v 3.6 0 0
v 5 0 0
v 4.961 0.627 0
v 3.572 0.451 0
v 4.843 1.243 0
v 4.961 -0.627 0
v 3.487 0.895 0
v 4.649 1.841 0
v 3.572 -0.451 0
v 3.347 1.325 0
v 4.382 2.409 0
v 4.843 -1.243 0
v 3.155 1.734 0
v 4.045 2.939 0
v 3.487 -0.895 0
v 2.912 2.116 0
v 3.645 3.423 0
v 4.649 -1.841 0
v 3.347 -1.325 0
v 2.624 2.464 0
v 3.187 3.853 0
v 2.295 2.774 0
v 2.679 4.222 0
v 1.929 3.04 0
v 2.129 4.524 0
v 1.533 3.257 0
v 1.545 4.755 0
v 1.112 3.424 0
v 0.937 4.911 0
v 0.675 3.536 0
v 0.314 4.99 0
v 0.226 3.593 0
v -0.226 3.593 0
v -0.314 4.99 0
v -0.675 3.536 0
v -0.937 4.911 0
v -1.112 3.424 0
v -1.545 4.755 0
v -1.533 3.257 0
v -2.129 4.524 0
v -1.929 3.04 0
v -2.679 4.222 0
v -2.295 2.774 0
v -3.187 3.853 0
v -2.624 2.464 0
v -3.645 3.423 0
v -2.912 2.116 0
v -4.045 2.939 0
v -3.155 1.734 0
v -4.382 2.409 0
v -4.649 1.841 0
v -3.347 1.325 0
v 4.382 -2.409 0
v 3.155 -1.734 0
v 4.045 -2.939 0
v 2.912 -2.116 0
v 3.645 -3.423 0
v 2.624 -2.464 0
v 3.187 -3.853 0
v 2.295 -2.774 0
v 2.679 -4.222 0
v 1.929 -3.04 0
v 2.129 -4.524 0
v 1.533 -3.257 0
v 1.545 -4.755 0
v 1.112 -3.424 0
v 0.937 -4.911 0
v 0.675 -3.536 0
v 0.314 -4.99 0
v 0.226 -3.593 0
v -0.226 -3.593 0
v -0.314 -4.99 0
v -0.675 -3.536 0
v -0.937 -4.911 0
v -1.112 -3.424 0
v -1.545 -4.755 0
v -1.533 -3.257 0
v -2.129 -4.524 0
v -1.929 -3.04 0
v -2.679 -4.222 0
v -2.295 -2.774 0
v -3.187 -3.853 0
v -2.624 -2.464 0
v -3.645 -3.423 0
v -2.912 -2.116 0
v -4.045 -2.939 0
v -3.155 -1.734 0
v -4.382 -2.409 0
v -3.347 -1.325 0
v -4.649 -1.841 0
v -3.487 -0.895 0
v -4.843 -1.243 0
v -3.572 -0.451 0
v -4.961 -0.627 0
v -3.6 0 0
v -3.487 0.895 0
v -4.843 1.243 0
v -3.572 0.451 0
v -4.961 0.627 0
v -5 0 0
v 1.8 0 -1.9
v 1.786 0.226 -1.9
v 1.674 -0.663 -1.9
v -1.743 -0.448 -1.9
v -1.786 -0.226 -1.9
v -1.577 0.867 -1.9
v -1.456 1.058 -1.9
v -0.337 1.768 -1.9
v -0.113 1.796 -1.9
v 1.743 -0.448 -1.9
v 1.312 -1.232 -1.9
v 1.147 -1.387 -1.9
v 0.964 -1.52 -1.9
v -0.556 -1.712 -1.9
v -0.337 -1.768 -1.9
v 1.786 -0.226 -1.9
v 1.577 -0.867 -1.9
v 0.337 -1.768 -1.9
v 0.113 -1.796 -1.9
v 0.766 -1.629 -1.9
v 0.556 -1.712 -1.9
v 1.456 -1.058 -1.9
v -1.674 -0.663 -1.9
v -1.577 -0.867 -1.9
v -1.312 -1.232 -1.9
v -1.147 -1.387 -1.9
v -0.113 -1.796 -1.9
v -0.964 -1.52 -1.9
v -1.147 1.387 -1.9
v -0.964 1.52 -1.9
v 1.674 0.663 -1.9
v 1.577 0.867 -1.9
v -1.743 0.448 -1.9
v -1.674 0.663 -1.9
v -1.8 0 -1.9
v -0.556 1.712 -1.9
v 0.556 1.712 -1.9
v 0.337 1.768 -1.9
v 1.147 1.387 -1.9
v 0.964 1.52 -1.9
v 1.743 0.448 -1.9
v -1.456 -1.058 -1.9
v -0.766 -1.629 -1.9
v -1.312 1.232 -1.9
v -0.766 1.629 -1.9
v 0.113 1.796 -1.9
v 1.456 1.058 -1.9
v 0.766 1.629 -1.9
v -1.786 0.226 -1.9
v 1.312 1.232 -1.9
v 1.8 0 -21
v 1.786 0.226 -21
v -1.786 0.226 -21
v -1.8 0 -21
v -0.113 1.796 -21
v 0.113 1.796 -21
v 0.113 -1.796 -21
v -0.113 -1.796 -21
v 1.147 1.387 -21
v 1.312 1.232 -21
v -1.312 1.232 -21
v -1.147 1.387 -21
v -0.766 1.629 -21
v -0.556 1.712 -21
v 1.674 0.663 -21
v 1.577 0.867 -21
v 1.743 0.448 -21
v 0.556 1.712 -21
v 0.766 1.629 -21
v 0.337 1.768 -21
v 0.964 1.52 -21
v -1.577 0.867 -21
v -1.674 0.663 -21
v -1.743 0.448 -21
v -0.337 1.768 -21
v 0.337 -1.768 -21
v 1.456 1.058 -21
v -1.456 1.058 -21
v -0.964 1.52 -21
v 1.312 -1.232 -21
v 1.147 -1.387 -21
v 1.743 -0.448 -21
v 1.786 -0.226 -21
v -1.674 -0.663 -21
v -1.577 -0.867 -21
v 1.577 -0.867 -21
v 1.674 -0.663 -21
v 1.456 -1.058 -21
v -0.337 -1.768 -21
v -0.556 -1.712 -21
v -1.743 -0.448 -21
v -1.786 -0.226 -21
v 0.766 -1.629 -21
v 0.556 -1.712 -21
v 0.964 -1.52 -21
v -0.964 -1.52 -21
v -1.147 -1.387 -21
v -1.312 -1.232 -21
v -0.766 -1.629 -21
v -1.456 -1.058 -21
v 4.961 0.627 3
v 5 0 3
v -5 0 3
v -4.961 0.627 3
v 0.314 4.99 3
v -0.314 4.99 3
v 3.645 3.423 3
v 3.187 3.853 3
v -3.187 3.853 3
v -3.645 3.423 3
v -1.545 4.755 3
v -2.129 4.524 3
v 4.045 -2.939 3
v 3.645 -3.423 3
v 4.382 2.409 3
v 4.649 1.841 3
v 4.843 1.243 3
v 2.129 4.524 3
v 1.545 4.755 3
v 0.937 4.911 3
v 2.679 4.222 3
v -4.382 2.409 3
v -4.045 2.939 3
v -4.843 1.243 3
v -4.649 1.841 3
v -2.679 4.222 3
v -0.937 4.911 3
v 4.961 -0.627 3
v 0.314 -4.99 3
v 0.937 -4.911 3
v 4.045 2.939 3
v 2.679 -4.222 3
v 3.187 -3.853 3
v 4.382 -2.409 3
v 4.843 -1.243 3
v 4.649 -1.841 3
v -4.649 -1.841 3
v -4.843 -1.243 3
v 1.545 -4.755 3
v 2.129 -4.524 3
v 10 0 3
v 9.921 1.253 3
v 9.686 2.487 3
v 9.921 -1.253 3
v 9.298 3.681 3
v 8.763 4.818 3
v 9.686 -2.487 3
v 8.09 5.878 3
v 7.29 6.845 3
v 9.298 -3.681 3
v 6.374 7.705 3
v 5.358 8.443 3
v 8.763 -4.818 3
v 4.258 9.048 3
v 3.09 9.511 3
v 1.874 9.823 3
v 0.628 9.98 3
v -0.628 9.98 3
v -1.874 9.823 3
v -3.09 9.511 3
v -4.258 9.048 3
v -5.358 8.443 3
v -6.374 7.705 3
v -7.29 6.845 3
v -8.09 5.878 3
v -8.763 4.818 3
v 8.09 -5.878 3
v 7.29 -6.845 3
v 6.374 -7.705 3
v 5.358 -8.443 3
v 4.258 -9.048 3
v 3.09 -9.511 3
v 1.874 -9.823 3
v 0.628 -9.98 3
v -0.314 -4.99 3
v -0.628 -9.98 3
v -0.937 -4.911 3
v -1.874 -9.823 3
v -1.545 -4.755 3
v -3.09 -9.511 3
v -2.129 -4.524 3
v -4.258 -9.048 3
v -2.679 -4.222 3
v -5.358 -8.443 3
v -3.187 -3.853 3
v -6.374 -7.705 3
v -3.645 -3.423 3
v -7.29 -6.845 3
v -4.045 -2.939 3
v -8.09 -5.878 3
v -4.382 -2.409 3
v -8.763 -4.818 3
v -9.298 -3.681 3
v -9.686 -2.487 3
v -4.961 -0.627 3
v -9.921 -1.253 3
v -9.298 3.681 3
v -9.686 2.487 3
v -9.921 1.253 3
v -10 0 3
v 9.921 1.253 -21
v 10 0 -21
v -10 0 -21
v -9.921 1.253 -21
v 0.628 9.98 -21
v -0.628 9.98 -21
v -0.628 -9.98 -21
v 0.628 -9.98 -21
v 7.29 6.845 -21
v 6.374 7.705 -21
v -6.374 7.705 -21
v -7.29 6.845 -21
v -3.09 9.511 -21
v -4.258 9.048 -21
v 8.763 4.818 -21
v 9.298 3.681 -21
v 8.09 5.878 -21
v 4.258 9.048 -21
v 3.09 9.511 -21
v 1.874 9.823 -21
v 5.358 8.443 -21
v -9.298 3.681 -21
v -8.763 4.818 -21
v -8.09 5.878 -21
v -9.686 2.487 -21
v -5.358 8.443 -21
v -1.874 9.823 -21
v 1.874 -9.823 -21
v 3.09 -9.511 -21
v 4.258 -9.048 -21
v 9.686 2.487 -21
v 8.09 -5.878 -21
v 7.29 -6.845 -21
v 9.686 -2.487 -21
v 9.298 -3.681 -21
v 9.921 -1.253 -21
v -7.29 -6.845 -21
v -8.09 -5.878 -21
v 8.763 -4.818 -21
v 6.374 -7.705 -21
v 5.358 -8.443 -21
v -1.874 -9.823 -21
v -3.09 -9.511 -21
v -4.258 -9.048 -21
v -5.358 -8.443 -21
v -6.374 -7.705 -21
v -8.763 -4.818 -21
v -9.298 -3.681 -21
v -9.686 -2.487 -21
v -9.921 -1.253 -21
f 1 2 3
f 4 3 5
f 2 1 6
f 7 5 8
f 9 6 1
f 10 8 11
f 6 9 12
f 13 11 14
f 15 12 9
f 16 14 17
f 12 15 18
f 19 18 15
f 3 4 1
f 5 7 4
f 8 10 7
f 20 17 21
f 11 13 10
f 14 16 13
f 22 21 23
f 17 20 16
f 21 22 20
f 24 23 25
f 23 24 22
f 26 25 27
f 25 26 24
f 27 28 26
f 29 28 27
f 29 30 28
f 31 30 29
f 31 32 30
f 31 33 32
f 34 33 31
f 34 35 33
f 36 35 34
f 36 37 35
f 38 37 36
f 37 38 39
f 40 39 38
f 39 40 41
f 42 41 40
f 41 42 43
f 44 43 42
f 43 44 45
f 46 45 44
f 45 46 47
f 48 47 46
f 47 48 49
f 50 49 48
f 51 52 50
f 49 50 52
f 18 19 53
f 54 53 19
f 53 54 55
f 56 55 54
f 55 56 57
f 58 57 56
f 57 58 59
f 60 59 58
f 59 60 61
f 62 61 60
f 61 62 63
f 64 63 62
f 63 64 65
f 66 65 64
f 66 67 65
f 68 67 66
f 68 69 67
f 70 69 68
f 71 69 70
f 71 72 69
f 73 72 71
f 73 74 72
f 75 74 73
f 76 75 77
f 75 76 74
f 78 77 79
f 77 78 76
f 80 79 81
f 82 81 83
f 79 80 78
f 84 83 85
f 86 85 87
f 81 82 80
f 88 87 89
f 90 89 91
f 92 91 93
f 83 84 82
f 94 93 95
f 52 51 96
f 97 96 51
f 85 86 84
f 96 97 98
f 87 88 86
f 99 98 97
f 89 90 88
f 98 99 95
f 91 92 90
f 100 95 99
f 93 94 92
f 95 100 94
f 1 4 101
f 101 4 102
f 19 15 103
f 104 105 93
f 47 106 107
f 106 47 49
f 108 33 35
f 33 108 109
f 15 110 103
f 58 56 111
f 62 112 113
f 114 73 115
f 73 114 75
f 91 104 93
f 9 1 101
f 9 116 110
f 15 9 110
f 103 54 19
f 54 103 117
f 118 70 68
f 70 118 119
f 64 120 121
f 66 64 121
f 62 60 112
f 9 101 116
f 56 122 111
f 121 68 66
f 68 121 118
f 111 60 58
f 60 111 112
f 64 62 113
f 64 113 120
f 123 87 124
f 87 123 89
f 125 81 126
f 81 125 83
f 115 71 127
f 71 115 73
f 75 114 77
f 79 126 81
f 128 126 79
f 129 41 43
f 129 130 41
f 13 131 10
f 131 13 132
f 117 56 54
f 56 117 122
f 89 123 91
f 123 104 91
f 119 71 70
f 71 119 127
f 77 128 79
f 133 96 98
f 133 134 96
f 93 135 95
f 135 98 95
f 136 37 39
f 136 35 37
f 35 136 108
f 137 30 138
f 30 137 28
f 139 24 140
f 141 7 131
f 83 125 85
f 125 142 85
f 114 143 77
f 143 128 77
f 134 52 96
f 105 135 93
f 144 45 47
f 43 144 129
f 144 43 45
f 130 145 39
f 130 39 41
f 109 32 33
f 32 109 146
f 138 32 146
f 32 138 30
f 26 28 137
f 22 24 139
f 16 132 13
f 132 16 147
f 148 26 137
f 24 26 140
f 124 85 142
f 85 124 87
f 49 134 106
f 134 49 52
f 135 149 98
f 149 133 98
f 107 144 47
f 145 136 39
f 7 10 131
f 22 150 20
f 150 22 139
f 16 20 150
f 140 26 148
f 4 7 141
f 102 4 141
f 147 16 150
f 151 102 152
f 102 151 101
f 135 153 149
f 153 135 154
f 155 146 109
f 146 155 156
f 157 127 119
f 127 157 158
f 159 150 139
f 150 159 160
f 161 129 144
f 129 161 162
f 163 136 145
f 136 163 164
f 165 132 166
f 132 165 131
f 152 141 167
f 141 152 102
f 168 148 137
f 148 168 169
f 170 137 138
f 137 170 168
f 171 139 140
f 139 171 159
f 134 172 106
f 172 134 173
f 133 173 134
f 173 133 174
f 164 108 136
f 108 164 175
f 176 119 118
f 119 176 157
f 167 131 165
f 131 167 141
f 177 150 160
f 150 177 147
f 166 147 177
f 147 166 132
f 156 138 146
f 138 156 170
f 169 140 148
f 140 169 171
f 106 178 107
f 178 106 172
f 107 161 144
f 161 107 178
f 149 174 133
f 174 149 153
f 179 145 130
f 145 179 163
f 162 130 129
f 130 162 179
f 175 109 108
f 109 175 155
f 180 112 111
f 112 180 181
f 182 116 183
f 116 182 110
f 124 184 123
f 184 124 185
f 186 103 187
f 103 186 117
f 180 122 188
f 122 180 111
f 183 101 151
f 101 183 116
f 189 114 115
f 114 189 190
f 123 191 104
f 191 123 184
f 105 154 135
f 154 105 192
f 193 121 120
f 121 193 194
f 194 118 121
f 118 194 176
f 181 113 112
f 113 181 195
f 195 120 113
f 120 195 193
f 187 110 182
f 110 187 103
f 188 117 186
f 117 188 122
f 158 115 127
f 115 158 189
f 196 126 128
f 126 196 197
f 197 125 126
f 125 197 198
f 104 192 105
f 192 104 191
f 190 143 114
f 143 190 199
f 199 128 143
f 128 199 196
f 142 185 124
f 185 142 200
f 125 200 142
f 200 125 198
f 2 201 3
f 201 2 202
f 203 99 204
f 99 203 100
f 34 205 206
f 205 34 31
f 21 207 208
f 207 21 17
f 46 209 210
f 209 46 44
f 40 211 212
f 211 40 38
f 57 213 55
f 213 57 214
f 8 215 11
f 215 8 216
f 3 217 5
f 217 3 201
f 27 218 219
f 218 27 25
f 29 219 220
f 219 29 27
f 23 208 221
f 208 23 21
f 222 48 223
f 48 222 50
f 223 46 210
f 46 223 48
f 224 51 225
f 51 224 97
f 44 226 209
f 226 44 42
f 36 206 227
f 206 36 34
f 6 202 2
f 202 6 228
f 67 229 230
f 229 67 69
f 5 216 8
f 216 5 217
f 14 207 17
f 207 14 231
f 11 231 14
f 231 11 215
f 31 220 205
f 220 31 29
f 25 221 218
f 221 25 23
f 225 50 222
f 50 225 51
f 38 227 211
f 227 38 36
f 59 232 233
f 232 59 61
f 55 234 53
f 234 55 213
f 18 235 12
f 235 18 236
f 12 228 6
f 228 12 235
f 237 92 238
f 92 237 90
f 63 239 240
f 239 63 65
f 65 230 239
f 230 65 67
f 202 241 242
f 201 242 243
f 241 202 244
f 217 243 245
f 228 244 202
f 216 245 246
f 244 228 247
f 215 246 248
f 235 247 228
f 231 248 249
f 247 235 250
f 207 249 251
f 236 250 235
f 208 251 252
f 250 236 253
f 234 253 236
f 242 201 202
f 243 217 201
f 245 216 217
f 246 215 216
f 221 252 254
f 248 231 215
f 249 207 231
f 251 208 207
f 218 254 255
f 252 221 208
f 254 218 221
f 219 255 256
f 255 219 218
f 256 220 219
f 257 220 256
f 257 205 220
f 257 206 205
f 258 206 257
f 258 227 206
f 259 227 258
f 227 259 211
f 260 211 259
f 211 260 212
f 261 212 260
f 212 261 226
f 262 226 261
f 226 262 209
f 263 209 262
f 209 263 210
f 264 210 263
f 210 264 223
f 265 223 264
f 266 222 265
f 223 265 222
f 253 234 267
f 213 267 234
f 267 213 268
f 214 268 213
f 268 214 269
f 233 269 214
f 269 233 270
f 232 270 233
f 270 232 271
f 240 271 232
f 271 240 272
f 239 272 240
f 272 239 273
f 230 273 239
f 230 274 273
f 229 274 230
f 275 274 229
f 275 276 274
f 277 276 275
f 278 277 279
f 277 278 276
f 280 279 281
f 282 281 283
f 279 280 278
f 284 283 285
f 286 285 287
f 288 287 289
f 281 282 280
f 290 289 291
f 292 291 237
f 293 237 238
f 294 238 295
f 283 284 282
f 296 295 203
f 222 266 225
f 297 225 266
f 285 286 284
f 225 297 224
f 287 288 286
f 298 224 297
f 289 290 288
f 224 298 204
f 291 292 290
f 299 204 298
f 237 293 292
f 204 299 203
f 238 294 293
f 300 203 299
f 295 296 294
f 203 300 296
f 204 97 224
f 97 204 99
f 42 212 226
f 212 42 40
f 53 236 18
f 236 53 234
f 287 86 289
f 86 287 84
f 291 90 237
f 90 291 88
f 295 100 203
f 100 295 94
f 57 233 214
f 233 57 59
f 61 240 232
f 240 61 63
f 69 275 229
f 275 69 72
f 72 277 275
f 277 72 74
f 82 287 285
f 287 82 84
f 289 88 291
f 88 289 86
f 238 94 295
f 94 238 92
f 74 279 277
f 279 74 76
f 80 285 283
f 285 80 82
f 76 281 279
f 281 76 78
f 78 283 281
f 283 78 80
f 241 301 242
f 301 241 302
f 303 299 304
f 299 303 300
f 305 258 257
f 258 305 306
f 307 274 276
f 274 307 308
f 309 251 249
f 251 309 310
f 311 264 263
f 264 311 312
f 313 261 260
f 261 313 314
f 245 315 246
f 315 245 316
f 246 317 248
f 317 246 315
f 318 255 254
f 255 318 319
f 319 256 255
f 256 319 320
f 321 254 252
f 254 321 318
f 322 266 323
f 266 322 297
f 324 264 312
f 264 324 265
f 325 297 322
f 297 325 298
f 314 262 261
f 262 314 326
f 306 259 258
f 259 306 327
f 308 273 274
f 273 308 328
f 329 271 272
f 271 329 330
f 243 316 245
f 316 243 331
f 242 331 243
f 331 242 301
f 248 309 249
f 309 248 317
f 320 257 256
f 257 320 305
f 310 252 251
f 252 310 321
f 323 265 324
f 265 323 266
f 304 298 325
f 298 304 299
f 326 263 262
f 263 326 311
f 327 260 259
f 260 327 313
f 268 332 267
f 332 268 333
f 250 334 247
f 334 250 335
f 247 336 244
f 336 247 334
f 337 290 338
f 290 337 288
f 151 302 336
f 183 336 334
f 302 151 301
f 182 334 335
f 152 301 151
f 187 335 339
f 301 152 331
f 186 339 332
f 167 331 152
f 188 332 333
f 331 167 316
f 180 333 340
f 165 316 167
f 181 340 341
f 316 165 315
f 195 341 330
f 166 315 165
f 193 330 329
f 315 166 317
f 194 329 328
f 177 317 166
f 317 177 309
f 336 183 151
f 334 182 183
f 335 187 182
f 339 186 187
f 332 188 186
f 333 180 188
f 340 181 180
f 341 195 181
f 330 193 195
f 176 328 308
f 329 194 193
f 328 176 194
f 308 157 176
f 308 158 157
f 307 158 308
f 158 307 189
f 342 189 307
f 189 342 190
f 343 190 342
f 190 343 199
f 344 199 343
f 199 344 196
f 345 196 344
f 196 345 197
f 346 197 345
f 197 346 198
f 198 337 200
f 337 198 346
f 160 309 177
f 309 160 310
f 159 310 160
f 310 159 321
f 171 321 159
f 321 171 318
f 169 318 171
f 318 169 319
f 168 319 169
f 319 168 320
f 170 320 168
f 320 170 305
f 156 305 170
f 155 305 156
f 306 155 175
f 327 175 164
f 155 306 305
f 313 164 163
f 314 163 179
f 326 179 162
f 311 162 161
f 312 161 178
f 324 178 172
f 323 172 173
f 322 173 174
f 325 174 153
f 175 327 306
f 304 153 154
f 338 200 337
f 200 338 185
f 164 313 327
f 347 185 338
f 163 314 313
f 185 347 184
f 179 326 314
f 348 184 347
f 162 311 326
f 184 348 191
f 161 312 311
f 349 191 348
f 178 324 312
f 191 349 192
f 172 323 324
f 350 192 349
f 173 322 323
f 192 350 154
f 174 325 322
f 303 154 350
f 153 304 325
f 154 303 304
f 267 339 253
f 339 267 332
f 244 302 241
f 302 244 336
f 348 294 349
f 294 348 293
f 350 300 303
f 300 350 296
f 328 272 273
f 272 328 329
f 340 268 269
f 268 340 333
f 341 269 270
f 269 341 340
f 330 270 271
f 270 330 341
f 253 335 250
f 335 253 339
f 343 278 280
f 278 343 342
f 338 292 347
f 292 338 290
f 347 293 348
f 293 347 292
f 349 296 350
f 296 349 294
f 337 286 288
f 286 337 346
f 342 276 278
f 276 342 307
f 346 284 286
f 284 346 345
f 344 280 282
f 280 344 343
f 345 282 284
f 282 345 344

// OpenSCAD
$fn = 50;


difference() {
	union() {
		translate(v = [0, 0, -21.0000000000]) {
			cylinder(h = 24, r = 10.0000000000);
		}
	}
	union() {
		translate(v = [0, 0, 0]) {
			rotate(a = [0, 0, 0]) {
				difference() {
					union() {
						translate(v = [0, 0, -24.0000000000]) {
							cylinder(h = 24, r = 1.5000000000);
						}
						translate(v = [0, 0, -1.9000000000]) {
							cylinder(h = 1.9000000000, r1 = 1.8000000000, r2 = 3.6000000000);
						}
						translate(v = [0, 0, -24.0000000000]) {
							cylinder(h = 24, r = 1.8000000000);
						}
						translate(v = [0, 0, -24.0000000000]) {
							cylinder(h = 24, r = 1.5000000000);
						}
					}
					union();
				}
			}
		}
		#cylinder(h = 3, r = 5.0000000000);
	}
}
